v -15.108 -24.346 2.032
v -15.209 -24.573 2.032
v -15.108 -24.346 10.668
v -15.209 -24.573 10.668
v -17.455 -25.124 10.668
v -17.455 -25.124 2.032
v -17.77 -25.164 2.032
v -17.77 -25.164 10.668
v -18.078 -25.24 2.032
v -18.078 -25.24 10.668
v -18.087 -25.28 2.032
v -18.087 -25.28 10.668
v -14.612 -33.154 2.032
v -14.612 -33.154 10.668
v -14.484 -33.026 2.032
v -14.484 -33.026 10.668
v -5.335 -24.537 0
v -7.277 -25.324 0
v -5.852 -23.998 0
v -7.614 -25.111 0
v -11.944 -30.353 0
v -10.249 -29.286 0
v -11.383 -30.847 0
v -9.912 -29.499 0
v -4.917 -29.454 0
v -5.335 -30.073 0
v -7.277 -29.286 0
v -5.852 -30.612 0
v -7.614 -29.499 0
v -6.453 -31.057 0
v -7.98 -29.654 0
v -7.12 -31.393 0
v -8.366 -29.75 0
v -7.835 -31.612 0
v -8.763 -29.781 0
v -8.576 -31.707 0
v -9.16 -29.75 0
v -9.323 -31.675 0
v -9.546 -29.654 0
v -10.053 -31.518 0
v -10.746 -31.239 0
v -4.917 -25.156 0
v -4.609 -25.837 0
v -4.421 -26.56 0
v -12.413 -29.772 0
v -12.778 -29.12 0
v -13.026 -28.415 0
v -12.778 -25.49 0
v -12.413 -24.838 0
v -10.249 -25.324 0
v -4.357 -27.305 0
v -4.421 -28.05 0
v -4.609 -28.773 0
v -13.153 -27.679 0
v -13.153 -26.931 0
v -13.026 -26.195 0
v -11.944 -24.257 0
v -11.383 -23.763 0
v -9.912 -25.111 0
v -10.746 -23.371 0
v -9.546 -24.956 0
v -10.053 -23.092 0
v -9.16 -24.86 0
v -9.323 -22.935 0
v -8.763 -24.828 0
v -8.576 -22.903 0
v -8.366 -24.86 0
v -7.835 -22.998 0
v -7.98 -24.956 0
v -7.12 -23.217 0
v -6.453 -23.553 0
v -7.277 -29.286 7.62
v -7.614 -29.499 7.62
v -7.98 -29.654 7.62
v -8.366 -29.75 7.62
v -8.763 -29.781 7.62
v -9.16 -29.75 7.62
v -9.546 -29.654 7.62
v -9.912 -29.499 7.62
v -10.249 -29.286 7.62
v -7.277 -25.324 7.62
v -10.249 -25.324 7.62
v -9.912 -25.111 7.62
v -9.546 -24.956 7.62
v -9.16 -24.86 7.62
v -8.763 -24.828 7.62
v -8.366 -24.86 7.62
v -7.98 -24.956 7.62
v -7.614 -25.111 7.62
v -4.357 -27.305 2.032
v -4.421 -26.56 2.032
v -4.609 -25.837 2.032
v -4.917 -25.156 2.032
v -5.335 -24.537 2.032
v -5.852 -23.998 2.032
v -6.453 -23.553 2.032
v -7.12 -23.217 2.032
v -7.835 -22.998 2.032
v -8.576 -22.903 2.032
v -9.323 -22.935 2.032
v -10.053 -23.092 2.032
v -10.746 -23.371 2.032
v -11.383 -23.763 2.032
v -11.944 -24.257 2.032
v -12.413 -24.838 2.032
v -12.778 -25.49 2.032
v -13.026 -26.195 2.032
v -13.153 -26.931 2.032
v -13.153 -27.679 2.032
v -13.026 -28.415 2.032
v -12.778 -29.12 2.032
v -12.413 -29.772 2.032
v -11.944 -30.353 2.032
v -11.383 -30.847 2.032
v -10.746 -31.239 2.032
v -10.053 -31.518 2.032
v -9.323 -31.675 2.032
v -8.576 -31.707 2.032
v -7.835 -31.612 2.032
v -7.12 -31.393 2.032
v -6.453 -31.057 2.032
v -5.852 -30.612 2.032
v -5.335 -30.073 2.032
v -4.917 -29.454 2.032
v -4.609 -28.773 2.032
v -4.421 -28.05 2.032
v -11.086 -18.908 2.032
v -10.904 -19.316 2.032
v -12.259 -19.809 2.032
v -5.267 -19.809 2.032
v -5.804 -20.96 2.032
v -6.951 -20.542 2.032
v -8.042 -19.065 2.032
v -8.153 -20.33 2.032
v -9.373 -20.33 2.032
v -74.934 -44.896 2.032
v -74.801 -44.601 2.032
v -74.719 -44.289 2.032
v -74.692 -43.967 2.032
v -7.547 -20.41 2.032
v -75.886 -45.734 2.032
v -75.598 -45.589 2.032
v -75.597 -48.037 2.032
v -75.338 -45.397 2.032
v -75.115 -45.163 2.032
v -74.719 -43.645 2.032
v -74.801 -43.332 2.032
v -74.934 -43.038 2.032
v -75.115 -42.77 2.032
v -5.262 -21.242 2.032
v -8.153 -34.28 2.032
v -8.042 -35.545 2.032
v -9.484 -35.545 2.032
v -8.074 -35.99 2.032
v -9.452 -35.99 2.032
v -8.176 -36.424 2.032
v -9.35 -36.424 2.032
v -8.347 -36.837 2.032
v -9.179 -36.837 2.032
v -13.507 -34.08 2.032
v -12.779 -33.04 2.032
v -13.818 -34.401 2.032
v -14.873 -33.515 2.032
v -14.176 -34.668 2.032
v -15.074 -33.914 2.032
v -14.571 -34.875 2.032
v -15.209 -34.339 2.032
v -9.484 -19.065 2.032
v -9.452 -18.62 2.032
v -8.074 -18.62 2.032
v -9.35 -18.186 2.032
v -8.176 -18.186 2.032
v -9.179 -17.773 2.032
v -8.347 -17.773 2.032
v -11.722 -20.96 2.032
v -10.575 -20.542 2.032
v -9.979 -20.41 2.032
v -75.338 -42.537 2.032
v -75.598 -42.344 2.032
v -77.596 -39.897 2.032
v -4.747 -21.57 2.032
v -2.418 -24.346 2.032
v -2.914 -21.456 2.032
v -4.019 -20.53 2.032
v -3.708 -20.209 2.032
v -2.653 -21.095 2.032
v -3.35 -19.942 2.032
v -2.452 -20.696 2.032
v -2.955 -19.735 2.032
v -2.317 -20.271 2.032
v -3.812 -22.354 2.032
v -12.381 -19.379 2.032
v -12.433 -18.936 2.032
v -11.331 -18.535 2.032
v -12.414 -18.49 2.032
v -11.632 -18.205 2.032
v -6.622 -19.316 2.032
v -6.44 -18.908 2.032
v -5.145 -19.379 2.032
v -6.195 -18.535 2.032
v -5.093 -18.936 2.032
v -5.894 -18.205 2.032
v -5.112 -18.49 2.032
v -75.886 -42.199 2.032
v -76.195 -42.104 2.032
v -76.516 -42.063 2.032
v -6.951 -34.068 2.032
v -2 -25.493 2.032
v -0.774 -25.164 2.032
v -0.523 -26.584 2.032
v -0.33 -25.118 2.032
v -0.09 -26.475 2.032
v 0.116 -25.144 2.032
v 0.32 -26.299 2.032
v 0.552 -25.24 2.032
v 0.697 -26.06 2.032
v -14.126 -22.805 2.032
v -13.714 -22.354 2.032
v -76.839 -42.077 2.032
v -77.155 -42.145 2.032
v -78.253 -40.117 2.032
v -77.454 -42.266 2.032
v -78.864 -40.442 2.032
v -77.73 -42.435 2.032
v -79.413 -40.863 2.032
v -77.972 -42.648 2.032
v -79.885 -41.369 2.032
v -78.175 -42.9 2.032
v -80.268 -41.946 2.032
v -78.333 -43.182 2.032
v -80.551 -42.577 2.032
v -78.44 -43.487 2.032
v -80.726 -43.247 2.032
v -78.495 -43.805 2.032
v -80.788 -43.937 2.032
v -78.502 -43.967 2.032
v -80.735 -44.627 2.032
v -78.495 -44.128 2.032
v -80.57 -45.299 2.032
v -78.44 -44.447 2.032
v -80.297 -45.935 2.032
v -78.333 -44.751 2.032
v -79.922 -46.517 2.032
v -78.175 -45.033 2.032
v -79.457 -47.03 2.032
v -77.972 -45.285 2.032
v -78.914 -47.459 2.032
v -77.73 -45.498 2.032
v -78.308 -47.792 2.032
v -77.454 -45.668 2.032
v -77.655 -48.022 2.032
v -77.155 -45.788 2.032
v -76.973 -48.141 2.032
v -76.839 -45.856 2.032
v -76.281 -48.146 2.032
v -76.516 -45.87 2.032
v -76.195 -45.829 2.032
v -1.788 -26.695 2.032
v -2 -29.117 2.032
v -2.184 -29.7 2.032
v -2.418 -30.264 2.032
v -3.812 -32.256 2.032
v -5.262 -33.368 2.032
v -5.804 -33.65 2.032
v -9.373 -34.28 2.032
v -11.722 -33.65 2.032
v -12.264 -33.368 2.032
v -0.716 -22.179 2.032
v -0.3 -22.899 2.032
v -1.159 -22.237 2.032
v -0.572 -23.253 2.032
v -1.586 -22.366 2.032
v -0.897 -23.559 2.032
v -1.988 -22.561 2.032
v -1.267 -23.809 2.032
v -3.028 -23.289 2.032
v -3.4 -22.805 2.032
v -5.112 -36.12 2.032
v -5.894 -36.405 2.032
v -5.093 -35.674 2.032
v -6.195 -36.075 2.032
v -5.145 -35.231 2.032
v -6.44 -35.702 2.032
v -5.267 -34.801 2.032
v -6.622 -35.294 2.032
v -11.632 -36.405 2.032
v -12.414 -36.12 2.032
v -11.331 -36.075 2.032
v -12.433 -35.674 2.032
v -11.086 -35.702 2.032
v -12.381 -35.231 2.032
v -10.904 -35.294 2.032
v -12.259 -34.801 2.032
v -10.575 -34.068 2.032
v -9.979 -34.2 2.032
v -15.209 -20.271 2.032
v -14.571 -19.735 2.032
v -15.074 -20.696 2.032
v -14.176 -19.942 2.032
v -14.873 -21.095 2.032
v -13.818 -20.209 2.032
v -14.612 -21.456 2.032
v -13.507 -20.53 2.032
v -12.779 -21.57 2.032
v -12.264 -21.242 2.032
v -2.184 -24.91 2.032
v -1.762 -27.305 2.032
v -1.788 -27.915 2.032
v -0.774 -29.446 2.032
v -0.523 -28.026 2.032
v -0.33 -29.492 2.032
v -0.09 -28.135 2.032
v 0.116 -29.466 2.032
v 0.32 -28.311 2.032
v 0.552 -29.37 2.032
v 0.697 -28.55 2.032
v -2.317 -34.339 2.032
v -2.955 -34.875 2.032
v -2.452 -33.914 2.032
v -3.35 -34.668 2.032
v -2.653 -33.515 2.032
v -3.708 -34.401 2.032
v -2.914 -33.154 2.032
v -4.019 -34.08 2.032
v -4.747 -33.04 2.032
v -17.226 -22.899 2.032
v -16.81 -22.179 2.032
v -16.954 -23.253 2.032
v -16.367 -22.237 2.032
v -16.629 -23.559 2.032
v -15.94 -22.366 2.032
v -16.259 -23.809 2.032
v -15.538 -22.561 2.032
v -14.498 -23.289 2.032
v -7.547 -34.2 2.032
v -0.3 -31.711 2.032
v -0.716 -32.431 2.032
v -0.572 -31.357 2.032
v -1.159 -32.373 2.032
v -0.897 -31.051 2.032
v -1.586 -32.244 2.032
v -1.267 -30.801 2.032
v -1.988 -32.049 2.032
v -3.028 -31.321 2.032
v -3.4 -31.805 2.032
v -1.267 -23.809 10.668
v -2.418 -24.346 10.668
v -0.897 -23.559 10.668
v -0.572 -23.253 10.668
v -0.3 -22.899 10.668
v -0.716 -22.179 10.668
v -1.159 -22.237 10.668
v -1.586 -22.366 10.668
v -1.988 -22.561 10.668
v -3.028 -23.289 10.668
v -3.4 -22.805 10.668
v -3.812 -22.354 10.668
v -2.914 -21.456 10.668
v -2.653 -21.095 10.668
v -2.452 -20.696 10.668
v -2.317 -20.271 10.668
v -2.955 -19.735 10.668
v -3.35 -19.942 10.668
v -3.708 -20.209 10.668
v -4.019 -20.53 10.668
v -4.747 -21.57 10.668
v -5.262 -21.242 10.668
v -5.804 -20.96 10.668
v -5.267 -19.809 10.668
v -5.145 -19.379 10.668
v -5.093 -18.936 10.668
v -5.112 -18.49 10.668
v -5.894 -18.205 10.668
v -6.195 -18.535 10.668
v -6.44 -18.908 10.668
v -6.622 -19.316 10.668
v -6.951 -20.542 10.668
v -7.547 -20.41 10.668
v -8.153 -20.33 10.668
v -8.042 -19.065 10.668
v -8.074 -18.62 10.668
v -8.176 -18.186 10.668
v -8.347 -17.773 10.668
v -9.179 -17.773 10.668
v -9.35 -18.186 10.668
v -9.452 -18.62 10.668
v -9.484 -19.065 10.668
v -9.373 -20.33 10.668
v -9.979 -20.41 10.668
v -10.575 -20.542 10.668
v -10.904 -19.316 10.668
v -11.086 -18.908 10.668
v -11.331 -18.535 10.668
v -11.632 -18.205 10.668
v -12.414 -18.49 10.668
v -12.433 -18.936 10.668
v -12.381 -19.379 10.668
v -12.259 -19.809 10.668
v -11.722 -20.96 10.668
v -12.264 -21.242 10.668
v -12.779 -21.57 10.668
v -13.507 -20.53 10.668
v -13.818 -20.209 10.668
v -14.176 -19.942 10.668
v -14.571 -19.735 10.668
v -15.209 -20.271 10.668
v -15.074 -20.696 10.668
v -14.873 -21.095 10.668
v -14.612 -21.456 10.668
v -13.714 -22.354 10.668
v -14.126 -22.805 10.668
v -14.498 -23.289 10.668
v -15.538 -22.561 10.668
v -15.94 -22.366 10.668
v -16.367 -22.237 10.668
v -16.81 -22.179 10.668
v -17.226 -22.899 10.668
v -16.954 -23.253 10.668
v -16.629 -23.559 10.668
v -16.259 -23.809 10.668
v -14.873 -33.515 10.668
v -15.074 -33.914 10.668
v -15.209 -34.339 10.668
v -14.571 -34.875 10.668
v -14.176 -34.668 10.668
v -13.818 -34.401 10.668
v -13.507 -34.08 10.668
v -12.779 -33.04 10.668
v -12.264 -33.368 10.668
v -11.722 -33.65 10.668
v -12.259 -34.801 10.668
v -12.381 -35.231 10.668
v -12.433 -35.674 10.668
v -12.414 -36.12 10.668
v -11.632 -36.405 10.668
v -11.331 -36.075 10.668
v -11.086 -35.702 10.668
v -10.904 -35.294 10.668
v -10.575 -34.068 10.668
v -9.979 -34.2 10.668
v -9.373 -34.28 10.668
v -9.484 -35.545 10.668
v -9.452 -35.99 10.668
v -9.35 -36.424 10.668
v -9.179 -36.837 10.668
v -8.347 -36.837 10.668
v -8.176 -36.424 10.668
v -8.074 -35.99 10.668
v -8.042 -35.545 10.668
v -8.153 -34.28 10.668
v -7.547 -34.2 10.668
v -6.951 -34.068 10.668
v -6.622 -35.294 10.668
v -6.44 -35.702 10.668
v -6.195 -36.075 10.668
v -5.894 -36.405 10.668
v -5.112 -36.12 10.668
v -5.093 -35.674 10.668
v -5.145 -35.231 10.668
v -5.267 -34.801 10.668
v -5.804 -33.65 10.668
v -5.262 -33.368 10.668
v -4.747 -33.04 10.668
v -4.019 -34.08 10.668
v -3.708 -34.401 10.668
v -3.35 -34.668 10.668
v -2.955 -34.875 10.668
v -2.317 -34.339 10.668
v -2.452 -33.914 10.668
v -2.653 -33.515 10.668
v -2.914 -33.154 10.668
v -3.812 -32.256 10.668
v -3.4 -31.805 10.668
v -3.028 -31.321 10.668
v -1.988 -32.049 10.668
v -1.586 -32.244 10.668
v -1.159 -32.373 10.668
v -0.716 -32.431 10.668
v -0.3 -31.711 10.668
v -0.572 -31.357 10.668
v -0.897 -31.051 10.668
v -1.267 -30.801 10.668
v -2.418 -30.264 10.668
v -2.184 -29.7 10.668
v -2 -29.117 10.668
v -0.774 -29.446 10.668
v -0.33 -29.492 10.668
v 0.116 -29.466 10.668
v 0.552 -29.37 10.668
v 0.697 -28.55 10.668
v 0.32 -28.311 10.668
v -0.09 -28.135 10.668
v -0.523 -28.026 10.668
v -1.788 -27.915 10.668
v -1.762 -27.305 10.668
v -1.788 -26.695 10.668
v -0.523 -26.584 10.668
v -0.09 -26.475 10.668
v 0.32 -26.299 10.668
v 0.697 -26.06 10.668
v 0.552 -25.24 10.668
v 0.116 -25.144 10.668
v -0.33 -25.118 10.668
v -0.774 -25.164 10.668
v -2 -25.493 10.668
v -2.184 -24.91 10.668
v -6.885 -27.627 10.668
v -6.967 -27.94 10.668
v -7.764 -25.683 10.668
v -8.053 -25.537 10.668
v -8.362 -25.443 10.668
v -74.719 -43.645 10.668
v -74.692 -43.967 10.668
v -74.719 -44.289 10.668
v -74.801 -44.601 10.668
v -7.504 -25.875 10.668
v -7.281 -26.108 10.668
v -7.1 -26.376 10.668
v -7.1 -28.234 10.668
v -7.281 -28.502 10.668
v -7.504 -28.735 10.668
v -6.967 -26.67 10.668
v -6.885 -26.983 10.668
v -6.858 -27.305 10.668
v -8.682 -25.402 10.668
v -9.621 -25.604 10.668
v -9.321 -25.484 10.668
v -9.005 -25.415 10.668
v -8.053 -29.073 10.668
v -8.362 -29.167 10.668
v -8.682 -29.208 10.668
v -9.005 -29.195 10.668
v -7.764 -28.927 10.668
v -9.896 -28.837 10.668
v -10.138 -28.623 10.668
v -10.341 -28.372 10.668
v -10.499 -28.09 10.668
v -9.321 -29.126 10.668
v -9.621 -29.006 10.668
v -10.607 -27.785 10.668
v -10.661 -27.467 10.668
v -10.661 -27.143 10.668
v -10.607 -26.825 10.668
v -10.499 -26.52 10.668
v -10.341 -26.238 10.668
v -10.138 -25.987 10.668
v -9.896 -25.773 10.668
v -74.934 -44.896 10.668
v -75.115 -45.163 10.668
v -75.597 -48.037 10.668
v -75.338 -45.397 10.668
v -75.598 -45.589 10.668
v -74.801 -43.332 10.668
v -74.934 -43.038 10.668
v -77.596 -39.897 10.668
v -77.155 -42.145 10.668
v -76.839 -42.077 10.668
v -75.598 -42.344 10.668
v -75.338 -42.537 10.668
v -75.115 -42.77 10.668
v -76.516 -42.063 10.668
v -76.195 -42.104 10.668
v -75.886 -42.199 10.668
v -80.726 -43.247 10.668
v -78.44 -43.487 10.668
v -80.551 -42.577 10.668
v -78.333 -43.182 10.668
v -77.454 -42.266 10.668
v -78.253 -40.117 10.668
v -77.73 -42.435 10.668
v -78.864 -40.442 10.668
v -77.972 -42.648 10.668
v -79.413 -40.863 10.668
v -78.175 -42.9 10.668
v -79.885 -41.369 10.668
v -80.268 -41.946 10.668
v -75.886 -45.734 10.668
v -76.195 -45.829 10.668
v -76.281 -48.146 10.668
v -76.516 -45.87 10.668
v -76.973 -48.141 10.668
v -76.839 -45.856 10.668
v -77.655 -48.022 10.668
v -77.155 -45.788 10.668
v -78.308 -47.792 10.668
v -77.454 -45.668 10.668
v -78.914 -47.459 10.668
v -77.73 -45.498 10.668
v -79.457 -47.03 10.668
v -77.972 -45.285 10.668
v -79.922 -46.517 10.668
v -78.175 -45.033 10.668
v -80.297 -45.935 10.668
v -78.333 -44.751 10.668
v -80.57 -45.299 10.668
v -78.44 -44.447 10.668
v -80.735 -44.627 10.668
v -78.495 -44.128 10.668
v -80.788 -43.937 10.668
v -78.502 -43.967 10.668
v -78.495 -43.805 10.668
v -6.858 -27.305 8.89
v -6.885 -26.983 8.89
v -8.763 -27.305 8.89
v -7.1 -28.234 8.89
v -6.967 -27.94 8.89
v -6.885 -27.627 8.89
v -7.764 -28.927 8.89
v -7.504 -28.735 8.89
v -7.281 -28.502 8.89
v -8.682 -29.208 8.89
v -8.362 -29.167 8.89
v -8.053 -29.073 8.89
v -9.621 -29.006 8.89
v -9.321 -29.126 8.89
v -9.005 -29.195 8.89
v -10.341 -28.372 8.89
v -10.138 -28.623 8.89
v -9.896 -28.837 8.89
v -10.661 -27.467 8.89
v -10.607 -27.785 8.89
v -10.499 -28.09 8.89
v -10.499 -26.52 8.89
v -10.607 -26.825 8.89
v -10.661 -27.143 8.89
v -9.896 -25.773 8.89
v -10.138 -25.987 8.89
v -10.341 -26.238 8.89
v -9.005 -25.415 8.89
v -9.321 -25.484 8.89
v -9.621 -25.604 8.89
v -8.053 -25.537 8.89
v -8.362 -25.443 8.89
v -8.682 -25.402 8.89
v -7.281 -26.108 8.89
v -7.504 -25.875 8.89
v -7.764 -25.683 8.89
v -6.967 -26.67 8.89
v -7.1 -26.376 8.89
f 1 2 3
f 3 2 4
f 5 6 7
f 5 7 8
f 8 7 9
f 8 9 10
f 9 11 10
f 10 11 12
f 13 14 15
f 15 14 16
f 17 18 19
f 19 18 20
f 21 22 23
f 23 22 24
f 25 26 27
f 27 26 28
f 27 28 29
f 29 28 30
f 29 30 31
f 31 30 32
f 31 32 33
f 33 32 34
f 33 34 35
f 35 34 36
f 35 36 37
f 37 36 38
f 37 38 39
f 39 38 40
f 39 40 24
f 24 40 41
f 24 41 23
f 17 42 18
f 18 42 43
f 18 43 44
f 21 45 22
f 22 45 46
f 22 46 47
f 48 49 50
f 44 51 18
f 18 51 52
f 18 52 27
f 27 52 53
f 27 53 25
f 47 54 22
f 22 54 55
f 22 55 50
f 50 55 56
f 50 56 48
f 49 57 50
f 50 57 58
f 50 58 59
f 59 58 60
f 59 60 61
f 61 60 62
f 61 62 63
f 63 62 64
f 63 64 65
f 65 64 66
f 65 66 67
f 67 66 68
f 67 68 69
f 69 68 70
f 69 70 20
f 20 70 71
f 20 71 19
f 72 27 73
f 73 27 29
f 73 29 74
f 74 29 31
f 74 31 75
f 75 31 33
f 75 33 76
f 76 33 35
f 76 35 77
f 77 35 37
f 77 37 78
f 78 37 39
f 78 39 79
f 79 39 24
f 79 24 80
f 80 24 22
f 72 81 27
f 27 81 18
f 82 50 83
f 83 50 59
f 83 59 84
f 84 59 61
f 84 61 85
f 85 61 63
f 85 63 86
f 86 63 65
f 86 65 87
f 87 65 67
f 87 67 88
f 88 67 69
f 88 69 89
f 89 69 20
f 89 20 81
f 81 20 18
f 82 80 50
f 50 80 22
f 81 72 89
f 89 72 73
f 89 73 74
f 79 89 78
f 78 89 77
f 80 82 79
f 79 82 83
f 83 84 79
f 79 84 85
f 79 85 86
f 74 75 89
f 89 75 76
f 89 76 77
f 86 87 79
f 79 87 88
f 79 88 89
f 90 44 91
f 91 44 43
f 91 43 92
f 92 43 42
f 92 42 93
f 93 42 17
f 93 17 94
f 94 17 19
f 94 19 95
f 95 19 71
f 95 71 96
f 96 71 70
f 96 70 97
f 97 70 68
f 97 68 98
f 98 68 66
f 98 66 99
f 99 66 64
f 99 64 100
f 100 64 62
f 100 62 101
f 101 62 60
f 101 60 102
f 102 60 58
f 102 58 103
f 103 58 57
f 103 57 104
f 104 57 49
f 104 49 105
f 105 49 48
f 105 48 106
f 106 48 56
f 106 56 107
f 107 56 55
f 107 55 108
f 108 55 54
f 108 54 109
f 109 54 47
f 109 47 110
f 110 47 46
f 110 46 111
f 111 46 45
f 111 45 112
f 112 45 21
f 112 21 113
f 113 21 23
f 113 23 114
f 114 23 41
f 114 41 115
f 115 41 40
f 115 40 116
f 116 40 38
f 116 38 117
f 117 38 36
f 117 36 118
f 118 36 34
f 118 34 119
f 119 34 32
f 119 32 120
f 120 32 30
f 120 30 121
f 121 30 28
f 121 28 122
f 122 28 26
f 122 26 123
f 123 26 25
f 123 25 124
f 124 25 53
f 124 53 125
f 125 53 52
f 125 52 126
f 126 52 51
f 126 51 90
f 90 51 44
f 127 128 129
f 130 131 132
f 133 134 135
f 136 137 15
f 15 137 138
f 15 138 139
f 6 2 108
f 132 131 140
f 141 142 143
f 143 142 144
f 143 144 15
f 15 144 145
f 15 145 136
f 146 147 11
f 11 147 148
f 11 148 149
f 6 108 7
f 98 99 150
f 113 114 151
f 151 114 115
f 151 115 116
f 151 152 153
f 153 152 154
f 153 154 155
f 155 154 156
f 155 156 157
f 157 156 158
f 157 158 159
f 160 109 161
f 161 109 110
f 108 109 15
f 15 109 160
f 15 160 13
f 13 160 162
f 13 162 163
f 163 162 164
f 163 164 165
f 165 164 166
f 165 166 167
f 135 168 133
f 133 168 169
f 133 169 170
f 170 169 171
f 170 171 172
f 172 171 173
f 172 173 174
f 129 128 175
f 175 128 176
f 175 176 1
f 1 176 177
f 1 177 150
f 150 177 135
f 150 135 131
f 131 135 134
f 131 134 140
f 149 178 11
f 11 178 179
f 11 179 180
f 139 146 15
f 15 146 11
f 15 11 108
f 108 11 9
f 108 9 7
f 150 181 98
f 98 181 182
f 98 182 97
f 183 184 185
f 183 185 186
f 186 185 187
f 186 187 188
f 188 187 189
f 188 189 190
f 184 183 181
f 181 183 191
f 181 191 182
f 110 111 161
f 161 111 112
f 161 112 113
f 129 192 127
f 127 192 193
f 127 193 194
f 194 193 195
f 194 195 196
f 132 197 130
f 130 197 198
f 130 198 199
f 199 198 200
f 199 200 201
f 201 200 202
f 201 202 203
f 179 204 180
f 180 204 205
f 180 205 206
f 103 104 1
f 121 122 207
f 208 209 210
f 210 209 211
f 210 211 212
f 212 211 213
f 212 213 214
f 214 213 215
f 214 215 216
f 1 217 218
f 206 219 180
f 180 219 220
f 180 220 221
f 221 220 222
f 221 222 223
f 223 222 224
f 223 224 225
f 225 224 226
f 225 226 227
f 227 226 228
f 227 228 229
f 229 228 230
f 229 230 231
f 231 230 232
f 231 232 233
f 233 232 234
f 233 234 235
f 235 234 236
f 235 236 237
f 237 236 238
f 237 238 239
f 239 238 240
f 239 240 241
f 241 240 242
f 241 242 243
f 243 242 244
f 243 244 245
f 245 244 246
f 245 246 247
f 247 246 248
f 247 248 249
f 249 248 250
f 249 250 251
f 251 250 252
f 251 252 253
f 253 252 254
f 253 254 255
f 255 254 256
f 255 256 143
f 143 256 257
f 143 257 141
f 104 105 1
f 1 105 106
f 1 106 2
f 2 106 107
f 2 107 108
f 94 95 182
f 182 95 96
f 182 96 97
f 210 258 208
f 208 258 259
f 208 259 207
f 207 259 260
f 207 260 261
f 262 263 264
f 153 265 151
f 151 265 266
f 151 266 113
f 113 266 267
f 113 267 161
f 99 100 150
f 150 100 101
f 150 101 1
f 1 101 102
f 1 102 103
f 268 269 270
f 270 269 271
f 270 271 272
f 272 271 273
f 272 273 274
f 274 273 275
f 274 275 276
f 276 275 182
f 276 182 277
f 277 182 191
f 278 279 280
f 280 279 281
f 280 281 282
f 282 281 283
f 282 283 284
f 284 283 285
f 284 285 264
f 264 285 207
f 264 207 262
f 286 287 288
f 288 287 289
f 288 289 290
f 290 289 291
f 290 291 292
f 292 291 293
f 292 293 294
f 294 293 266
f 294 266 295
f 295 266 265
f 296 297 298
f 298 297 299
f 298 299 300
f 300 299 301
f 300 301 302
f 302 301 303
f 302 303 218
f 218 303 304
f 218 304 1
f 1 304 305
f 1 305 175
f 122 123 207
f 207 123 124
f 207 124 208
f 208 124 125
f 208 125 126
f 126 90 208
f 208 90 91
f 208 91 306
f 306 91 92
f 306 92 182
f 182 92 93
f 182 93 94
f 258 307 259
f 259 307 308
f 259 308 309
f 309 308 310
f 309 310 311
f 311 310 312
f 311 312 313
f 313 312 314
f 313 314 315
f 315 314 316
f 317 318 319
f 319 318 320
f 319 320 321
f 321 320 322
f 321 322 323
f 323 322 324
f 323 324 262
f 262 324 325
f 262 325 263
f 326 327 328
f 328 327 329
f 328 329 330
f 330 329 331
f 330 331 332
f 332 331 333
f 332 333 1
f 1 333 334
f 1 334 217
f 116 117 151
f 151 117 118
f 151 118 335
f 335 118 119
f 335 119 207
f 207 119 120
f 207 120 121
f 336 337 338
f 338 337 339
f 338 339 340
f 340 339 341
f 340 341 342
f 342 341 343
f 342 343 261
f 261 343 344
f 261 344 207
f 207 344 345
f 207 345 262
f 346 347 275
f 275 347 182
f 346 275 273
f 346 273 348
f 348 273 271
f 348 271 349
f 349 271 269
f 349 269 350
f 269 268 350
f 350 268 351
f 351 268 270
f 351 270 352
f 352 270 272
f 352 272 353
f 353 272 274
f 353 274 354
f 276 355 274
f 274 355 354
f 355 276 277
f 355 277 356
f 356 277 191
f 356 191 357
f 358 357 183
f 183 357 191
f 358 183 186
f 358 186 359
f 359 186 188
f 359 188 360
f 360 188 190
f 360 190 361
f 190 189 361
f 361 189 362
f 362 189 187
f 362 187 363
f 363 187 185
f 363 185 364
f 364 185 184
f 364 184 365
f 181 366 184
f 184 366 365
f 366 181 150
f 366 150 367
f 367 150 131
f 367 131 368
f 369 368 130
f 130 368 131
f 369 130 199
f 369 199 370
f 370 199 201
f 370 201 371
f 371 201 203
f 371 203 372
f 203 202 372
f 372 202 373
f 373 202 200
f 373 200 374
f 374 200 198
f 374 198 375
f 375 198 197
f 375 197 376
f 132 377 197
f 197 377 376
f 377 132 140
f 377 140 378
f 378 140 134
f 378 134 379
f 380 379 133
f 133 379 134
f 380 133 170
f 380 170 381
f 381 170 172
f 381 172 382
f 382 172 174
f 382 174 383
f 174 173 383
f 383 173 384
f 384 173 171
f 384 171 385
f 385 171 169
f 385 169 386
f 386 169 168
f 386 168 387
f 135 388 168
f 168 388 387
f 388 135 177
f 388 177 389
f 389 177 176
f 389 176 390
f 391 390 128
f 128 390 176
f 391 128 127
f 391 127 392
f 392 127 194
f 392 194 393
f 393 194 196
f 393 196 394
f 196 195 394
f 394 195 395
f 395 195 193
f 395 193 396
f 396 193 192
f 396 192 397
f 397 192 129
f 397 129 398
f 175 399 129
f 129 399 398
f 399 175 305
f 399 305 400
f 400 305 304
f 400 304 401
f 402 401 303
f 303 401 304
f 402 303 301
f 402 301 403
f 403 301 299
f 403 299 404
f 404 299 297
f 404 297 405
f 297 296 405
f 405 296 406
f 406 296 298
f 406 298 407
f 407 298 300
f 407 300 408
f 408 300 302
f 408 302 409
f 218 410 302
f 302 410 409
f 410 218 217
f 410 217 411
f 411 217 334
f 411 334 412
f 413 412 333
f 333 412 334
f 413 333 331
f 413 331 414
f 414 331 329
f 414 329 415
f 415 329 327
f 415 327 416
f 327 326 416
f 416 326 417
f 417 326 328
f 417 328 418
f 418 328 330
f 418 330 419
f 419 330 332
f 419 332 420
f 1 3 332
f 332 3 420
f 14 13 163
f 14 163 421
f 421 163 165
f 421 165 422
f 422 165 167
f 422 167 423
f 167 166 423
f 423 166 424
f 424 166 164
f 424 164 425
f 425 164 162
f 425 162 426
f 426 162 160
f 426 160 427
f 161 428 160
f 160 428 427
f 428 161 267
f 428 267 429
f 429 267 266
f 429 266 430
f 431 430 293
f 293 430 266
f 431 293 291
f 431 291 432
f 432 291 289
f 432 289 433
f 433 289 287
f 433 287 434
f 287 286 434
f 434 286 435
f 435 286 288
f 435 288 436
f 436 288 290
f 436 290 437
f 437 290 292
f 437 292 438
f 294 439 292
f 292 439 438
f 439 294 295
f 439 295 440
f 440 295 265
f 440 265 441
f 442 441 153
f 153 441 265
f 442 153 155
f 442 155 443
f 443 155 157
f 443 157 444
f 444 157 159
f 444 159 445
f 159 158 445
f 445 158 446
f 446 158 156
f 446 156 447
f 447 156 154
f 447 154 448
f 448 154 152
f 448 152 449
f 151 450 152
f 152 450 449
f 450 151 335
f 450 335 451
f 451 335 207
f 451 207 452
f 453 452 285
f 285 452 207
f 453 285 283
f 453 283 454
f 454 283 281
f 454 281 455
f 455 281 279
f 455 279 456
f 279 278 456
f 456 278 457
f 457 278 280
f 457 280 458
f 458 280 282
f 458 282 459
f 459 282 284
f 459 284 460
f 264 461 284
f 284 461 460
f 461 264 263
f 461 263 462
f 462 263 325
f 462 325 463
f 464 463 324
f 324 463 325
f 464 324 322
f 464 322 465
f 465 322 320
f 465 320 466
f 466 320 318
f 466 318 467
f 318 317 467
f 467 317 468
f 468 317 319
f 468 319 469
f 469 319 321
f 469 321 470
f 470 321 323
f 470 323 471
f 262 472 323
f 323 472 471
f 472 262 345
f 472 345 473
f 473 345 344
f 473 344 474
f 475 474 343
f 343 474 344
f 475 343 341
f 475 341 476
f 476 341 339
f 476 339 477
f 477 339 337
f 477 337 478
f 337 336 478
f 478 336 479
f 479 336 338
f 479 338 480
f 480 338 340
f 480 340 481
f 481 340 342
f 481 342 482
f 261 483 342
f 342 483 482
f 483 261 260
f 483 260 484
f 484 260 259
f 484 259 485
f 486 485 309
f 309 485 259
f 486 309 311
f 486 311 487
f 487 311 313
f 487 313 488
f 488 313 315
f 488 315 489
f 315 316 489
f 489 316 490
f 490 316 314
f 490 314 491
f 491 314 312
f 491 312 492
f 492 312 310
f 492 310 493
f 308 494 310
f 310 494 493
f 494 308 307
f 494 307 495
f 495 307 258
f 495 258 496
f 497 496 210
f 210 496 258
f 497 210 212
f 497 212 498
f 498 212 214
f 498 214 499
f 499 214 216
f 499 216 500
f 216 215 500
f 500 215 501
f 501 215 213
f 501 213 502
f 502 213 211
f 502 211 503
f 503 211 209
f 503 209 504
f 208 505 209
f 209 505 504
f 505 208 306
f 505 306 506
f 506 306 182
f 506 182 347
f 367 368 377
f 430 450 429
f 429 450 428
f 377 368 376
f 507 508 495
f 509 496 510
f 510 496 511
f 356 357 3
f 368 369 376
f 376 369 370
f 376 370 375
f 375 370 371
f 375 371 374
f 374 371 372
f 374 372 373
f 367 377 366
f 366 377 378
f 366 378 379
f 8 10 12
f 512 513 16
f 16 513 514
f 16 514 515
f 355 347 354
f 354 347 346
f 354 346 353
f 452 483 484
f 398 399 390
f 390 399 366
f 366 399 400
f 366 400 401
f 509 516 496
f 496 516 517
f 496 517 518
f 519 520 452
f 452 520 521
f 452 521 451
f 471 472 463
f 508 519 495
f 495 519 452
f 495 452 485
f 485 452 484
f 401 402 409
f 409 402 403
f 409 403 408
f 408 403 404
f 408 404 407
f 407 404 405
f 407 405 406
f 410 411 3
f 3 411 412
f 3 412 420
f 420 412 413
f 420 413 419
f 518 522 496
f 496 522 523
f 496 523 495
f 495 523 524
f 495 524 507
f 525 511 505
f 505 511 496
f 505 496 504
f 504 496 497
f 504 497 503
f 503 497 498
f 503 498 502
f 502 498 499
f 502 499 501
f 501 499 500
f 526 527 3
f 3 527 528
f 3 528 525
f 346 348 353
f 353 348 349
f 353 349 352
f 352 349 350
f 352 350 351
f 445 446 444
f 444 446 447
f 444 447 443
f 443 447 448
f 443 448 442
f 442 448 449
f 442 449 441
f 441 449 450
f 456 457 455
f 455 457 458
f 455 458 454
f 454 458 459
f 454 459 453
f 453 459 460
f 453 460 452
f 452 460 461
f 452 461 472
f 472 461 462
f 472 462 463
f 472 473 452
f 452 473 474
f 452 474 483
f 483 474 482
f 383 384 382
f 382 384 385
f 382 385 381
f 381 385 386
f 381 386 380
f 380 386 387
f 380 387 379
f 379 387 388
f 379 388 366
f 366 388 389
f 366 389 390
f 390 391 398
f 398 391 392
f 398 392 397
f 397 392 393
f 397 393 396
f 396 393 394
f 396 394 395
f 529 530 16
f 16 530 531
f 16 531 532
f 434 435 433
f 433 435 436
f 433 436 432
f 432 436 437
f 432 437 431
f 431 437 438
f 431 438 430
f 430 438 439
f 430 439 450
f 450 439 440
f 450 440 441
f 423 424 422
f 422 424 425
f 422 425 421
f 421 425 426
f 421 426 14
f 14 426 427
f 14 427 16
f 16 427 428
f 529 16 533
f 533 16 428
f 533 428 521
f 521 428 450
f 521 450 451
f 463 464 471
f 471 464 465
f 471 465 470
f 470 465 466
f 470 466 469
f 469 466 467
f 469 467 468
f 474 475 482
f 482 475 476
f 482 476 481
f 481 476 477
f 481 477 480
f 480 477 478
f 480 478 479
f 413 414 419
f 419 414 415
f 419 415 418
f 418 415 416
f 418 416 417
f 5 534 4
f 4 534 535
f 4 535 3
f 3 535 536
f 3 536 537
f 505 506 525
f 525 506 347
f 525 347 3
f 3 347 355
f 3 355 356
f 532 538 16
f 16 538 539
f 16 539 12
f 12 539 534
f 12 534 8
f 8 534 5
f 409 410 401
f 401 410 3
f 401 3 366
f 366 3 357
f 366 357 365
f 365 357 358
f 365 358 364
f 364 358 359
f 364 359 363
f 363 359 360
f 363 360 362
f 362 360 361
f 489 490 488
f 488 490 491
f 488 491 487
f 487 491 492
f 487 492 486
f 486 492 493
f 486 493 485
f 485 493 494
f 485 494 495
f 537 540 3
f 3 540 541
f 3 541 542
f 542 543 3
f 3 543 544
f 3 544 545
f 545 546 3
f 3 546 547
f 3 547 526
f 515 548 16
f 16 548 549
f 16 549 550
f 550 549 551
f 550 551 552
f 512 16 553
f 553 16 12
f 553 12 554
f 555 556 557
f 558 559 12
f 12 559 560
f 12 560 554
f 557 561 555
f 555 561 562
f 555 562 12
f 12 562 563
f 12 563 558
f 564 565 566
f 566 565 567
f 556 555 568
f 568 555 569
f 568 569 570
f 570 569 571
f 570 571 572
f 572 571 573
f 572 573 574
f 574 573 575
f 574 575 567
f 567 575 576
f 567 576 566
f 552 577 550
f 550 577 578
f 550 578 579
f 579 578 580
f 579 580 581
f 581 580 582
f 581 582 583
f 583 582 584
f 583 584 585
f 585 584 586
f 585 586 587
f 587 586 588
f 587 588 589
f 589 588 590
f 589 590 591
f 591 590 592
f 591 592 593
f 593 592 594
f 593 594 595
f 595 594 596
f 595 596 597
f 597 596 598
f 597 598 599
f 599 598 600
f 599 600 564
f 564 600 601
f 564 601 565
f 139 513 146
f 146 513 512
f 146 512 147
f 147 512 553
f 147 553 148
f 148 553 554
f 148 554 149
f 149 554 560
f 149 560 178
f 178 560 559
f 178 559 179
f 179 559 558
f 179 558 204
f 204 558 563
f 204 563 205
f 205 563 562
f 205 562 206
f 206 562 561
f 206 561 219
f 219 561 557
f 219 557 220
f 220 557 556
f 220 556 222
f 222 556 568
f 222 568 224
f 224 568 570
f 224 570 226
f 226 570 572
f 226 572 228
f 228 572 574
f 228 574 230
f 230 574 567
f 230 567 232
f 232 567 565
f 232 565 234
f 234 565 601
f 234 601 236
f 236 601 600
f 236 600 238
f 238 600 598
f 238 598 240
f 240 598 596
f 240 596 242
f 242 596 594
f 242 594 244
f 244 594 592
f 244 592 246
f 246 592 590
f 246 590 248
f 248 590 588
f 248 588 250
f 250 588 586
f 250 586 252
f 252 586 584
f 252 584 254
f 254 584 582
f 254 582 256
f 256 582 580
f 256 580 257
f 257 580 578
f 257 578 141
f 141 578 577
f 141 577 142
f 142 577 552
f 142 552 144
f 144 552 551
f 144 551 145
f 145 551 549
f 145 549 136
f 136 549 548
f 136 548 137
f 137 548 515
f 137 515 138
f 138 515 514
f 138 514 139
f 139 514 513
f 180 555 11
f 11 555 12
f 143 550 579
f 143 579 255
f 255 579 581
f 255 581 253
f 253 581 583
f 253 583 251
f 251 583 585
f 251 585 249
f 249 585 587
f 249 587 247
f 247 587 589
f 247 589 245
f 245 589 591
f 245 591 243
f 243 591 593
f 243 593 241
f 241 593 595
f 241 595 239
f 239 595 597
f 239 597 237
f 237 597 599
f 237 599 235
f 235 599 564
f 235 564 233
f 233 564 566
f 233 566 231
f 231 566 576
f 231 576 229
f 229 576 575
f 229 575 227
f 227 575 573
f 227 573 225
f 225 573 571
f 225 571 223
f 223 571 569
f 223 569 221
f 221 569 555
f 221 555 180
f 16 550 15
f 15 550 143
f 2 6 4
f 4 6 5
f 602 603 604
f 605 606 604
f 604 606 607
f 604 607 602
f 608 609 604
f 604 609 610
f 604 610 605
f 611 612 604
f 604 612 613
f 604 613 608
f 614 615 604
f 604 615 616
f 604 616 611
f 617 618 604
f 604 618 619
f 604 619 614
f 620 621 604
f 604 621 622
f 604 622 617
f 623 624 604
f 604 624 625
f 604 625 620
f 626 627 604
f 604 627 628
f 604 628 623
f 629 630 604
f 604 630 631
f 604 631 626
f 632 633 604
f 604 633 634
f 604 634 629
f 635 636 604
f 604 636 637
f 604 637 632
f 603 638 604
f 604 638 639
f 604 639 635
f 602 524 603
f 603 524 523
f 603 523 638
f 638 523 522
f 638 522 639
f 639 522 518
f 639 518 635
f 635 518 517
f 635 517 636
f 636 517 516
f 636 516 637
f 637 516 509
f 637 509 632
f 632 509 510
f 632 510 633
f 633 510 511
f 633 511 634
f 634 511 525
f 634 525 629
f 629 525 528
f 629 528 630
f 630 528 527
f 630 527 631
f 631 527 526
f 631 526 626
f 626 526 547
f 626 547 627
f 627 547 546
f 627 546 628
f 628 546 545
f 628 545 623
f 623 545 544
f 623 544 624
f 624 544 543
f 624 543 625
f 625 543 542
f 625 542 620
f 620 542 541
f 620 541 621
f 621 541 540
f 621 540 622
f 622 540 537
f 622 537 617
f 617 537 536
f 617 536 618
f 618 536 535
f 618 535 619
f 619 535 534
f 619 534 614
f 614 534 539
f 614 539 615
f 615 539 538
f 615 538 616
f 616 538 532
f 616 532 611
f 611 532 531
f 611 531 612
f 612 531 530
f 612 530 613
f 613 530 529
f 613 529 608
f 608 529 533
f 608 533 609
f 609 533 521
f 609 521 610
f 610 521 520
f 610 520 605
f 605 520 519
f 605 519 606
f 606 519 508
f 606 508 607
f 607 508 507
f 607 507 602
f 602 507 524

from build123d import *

# Parameters (mm, degrees)
BOSS_EXTRUDE2_DEPTH = 12.7
CIRPATTERN1_COUNT   = 18
CUT_EXTRUDE1_DEPTH  = 7.62
SKETCH5_W           = 2.032
SKETCH5_H           = 5.817262372
SKETCH6_R           = 1.905
CUT_EXTRUDE2_DEPTH  = 3.81
SKETCH7_R           = 1.905
BOSS_EXTRUDE3_DEPTH = 4.318
SKETCH8_R           = 4.40562407
CUT_EXTRUDE3_DEPTH  = 2.032


with BuildPart() as part:
    # Sketch2 → Boss-Extrude2 (new body)
    with BuildSketch(Plane.XY):
        with BuildLine():
            Line((-8.763, -27.305), (-2.184048035, -24.910457312))
            ThreePointArc((-2.184048035, -24.910457312), (-2.085861254, -25.19970624), (-2.000384787, -25.492962715))
            Line((-2.000384787, -25.492962715), (-0.773658987, -25.164262528))
            ThreePointArc((-0.773658987, -25.164262528), (-0.106264973, -25.122191283), (0.552010516, -25.239911886))
            ThreePointArc((0.552010516, -25.239911886), (0.633222569, -25.648192444), (0.696548377, -26.05962683))
            ThreePointArc((0.696548377, -26.05962683), (0.118234575, -26.395391489), (-0.523299868, -26.584119648))
            Line((-0.523299868, -26.584119648), (-1.788467135, -26.694807441))
            ThreePointArc((-1.788467135, -26.694807441), (-1.768489119, -26.99961306), (-1.761825553, -27.305))
            Line((-1.761825553, -27.305), (-8.763, -27.305))
        make_face()
    boss_extrude2 = extrude(amount=BOSS_EXTRUDE2_DEPTH)

    # CirPattern1: Boss-Extrude2 ×18 about axis
    cirpattern1_axis = Axis((-8.763, -27.305, 0), (0, 0, 1))
    for i in range(1, CIRPATTERN1_COUNT):
        add(boss_extrude2.rotate(cirpattern1_axis, i * 360 / CIRPATTERN1_COUNT))

    # Sketch4 → Cut-Extrude1 (cut)
    with BuildSketch(Plane(origin=(0, 0, 0), x_dir=(-1, 0, 0), z_dir=(0, 0, -1))):
        with BuildLine():
            Line((10.2489, -29.2862), (10.2489, -25.3238))
            ThreePointArc((10.2489, -25.3238), (8.763, -24.8285), (7.2771, -25.3238))
            Line((7.2771, -25.3238), (7.2771, -29.2862))
            ThreePointArc((7.2771, -29.2862), (8.763, -29.7815), (10.2489, -29.2862))
        make_face()
    extrude(amount=-CUT_EXTRUDE1_DEPTH, mode=Mode.SUBTRACT)

    # Sketch5 → Cut-Revolve1 (revolve, cut)
    with BuildSketch(Plane.ZY.offset(8.763), mode=Mode.PRIVATE) as cut_revolve1_sk:
        with Locations((1.016, -34.619255256)):
            Rectangle(SKETCH5_W, SKETCH5_H)
        with Locations((11.684, -34.619255256)):
            Rectangle(SKETCH5_W, SKETCH5_H)
    revolve(cut_revolve1_sk.sketch.rotate(Axis((-8.763, -27.305, 7.62), (0, 0, -1)), 270), axis=Axis((-8.763, -27.305, 7.62), (0, 0, -1)), mode=Mode.SUBTRACT)

    # Sketch6 → Cut-Extrude2 (cut)
    with BuildSketch(Plane.XY.offset(12.7)):
        with Locations((-8.763, -27.305)):
            Circle(SKETCH6_R)
    extrude(amount=-CUT_EXTRUDE2_DEPTH, mode=Mode.SUBTRACT)

    # Sketch7 → Boss-Extrude3 (add, symmetric)
    with BuildSketch(Plane(origin=(0, 0, 6.35), x_dir=(-1, 0, 0), z_dir=(0, 0, -1))):
        with BuildLine():
            Line((11.454508553, -23.650525812), (77.596423172, -39.896538245))
            ThreePointArc((77.596423172, -39.896538245), (80.666753219, -44.966255733), (75.597035731, -48.036585779))
            Line((75.597035731, -48.036585779), (9.455121112, -31.790573347))
            ThreePointArc((9.455121112, -31.790573347), (13.203025928, -28.395574968), (11.454508553, -23.650525812))
        make_face()
        with Locations((76.596729452, -43.966562012)):
            Circle(SKETCH7_R, mode=Mode.SUBTRACT)
    extrude(amount=BOSS_EXTRUDE3_DEPTH, both=True)

    # Sketch8 → Cut-Extrude3 (cut)
    with BuildSketch(Plane.XY.offset(10.668)):
        with Locations((-8.763, -27.305)):
            Circle(SKETCH8_R)
    extrude(amount=CUT_EXTRUDE3_DEPTH, mode=Mode.SUBTRACT)


solid = part.part
